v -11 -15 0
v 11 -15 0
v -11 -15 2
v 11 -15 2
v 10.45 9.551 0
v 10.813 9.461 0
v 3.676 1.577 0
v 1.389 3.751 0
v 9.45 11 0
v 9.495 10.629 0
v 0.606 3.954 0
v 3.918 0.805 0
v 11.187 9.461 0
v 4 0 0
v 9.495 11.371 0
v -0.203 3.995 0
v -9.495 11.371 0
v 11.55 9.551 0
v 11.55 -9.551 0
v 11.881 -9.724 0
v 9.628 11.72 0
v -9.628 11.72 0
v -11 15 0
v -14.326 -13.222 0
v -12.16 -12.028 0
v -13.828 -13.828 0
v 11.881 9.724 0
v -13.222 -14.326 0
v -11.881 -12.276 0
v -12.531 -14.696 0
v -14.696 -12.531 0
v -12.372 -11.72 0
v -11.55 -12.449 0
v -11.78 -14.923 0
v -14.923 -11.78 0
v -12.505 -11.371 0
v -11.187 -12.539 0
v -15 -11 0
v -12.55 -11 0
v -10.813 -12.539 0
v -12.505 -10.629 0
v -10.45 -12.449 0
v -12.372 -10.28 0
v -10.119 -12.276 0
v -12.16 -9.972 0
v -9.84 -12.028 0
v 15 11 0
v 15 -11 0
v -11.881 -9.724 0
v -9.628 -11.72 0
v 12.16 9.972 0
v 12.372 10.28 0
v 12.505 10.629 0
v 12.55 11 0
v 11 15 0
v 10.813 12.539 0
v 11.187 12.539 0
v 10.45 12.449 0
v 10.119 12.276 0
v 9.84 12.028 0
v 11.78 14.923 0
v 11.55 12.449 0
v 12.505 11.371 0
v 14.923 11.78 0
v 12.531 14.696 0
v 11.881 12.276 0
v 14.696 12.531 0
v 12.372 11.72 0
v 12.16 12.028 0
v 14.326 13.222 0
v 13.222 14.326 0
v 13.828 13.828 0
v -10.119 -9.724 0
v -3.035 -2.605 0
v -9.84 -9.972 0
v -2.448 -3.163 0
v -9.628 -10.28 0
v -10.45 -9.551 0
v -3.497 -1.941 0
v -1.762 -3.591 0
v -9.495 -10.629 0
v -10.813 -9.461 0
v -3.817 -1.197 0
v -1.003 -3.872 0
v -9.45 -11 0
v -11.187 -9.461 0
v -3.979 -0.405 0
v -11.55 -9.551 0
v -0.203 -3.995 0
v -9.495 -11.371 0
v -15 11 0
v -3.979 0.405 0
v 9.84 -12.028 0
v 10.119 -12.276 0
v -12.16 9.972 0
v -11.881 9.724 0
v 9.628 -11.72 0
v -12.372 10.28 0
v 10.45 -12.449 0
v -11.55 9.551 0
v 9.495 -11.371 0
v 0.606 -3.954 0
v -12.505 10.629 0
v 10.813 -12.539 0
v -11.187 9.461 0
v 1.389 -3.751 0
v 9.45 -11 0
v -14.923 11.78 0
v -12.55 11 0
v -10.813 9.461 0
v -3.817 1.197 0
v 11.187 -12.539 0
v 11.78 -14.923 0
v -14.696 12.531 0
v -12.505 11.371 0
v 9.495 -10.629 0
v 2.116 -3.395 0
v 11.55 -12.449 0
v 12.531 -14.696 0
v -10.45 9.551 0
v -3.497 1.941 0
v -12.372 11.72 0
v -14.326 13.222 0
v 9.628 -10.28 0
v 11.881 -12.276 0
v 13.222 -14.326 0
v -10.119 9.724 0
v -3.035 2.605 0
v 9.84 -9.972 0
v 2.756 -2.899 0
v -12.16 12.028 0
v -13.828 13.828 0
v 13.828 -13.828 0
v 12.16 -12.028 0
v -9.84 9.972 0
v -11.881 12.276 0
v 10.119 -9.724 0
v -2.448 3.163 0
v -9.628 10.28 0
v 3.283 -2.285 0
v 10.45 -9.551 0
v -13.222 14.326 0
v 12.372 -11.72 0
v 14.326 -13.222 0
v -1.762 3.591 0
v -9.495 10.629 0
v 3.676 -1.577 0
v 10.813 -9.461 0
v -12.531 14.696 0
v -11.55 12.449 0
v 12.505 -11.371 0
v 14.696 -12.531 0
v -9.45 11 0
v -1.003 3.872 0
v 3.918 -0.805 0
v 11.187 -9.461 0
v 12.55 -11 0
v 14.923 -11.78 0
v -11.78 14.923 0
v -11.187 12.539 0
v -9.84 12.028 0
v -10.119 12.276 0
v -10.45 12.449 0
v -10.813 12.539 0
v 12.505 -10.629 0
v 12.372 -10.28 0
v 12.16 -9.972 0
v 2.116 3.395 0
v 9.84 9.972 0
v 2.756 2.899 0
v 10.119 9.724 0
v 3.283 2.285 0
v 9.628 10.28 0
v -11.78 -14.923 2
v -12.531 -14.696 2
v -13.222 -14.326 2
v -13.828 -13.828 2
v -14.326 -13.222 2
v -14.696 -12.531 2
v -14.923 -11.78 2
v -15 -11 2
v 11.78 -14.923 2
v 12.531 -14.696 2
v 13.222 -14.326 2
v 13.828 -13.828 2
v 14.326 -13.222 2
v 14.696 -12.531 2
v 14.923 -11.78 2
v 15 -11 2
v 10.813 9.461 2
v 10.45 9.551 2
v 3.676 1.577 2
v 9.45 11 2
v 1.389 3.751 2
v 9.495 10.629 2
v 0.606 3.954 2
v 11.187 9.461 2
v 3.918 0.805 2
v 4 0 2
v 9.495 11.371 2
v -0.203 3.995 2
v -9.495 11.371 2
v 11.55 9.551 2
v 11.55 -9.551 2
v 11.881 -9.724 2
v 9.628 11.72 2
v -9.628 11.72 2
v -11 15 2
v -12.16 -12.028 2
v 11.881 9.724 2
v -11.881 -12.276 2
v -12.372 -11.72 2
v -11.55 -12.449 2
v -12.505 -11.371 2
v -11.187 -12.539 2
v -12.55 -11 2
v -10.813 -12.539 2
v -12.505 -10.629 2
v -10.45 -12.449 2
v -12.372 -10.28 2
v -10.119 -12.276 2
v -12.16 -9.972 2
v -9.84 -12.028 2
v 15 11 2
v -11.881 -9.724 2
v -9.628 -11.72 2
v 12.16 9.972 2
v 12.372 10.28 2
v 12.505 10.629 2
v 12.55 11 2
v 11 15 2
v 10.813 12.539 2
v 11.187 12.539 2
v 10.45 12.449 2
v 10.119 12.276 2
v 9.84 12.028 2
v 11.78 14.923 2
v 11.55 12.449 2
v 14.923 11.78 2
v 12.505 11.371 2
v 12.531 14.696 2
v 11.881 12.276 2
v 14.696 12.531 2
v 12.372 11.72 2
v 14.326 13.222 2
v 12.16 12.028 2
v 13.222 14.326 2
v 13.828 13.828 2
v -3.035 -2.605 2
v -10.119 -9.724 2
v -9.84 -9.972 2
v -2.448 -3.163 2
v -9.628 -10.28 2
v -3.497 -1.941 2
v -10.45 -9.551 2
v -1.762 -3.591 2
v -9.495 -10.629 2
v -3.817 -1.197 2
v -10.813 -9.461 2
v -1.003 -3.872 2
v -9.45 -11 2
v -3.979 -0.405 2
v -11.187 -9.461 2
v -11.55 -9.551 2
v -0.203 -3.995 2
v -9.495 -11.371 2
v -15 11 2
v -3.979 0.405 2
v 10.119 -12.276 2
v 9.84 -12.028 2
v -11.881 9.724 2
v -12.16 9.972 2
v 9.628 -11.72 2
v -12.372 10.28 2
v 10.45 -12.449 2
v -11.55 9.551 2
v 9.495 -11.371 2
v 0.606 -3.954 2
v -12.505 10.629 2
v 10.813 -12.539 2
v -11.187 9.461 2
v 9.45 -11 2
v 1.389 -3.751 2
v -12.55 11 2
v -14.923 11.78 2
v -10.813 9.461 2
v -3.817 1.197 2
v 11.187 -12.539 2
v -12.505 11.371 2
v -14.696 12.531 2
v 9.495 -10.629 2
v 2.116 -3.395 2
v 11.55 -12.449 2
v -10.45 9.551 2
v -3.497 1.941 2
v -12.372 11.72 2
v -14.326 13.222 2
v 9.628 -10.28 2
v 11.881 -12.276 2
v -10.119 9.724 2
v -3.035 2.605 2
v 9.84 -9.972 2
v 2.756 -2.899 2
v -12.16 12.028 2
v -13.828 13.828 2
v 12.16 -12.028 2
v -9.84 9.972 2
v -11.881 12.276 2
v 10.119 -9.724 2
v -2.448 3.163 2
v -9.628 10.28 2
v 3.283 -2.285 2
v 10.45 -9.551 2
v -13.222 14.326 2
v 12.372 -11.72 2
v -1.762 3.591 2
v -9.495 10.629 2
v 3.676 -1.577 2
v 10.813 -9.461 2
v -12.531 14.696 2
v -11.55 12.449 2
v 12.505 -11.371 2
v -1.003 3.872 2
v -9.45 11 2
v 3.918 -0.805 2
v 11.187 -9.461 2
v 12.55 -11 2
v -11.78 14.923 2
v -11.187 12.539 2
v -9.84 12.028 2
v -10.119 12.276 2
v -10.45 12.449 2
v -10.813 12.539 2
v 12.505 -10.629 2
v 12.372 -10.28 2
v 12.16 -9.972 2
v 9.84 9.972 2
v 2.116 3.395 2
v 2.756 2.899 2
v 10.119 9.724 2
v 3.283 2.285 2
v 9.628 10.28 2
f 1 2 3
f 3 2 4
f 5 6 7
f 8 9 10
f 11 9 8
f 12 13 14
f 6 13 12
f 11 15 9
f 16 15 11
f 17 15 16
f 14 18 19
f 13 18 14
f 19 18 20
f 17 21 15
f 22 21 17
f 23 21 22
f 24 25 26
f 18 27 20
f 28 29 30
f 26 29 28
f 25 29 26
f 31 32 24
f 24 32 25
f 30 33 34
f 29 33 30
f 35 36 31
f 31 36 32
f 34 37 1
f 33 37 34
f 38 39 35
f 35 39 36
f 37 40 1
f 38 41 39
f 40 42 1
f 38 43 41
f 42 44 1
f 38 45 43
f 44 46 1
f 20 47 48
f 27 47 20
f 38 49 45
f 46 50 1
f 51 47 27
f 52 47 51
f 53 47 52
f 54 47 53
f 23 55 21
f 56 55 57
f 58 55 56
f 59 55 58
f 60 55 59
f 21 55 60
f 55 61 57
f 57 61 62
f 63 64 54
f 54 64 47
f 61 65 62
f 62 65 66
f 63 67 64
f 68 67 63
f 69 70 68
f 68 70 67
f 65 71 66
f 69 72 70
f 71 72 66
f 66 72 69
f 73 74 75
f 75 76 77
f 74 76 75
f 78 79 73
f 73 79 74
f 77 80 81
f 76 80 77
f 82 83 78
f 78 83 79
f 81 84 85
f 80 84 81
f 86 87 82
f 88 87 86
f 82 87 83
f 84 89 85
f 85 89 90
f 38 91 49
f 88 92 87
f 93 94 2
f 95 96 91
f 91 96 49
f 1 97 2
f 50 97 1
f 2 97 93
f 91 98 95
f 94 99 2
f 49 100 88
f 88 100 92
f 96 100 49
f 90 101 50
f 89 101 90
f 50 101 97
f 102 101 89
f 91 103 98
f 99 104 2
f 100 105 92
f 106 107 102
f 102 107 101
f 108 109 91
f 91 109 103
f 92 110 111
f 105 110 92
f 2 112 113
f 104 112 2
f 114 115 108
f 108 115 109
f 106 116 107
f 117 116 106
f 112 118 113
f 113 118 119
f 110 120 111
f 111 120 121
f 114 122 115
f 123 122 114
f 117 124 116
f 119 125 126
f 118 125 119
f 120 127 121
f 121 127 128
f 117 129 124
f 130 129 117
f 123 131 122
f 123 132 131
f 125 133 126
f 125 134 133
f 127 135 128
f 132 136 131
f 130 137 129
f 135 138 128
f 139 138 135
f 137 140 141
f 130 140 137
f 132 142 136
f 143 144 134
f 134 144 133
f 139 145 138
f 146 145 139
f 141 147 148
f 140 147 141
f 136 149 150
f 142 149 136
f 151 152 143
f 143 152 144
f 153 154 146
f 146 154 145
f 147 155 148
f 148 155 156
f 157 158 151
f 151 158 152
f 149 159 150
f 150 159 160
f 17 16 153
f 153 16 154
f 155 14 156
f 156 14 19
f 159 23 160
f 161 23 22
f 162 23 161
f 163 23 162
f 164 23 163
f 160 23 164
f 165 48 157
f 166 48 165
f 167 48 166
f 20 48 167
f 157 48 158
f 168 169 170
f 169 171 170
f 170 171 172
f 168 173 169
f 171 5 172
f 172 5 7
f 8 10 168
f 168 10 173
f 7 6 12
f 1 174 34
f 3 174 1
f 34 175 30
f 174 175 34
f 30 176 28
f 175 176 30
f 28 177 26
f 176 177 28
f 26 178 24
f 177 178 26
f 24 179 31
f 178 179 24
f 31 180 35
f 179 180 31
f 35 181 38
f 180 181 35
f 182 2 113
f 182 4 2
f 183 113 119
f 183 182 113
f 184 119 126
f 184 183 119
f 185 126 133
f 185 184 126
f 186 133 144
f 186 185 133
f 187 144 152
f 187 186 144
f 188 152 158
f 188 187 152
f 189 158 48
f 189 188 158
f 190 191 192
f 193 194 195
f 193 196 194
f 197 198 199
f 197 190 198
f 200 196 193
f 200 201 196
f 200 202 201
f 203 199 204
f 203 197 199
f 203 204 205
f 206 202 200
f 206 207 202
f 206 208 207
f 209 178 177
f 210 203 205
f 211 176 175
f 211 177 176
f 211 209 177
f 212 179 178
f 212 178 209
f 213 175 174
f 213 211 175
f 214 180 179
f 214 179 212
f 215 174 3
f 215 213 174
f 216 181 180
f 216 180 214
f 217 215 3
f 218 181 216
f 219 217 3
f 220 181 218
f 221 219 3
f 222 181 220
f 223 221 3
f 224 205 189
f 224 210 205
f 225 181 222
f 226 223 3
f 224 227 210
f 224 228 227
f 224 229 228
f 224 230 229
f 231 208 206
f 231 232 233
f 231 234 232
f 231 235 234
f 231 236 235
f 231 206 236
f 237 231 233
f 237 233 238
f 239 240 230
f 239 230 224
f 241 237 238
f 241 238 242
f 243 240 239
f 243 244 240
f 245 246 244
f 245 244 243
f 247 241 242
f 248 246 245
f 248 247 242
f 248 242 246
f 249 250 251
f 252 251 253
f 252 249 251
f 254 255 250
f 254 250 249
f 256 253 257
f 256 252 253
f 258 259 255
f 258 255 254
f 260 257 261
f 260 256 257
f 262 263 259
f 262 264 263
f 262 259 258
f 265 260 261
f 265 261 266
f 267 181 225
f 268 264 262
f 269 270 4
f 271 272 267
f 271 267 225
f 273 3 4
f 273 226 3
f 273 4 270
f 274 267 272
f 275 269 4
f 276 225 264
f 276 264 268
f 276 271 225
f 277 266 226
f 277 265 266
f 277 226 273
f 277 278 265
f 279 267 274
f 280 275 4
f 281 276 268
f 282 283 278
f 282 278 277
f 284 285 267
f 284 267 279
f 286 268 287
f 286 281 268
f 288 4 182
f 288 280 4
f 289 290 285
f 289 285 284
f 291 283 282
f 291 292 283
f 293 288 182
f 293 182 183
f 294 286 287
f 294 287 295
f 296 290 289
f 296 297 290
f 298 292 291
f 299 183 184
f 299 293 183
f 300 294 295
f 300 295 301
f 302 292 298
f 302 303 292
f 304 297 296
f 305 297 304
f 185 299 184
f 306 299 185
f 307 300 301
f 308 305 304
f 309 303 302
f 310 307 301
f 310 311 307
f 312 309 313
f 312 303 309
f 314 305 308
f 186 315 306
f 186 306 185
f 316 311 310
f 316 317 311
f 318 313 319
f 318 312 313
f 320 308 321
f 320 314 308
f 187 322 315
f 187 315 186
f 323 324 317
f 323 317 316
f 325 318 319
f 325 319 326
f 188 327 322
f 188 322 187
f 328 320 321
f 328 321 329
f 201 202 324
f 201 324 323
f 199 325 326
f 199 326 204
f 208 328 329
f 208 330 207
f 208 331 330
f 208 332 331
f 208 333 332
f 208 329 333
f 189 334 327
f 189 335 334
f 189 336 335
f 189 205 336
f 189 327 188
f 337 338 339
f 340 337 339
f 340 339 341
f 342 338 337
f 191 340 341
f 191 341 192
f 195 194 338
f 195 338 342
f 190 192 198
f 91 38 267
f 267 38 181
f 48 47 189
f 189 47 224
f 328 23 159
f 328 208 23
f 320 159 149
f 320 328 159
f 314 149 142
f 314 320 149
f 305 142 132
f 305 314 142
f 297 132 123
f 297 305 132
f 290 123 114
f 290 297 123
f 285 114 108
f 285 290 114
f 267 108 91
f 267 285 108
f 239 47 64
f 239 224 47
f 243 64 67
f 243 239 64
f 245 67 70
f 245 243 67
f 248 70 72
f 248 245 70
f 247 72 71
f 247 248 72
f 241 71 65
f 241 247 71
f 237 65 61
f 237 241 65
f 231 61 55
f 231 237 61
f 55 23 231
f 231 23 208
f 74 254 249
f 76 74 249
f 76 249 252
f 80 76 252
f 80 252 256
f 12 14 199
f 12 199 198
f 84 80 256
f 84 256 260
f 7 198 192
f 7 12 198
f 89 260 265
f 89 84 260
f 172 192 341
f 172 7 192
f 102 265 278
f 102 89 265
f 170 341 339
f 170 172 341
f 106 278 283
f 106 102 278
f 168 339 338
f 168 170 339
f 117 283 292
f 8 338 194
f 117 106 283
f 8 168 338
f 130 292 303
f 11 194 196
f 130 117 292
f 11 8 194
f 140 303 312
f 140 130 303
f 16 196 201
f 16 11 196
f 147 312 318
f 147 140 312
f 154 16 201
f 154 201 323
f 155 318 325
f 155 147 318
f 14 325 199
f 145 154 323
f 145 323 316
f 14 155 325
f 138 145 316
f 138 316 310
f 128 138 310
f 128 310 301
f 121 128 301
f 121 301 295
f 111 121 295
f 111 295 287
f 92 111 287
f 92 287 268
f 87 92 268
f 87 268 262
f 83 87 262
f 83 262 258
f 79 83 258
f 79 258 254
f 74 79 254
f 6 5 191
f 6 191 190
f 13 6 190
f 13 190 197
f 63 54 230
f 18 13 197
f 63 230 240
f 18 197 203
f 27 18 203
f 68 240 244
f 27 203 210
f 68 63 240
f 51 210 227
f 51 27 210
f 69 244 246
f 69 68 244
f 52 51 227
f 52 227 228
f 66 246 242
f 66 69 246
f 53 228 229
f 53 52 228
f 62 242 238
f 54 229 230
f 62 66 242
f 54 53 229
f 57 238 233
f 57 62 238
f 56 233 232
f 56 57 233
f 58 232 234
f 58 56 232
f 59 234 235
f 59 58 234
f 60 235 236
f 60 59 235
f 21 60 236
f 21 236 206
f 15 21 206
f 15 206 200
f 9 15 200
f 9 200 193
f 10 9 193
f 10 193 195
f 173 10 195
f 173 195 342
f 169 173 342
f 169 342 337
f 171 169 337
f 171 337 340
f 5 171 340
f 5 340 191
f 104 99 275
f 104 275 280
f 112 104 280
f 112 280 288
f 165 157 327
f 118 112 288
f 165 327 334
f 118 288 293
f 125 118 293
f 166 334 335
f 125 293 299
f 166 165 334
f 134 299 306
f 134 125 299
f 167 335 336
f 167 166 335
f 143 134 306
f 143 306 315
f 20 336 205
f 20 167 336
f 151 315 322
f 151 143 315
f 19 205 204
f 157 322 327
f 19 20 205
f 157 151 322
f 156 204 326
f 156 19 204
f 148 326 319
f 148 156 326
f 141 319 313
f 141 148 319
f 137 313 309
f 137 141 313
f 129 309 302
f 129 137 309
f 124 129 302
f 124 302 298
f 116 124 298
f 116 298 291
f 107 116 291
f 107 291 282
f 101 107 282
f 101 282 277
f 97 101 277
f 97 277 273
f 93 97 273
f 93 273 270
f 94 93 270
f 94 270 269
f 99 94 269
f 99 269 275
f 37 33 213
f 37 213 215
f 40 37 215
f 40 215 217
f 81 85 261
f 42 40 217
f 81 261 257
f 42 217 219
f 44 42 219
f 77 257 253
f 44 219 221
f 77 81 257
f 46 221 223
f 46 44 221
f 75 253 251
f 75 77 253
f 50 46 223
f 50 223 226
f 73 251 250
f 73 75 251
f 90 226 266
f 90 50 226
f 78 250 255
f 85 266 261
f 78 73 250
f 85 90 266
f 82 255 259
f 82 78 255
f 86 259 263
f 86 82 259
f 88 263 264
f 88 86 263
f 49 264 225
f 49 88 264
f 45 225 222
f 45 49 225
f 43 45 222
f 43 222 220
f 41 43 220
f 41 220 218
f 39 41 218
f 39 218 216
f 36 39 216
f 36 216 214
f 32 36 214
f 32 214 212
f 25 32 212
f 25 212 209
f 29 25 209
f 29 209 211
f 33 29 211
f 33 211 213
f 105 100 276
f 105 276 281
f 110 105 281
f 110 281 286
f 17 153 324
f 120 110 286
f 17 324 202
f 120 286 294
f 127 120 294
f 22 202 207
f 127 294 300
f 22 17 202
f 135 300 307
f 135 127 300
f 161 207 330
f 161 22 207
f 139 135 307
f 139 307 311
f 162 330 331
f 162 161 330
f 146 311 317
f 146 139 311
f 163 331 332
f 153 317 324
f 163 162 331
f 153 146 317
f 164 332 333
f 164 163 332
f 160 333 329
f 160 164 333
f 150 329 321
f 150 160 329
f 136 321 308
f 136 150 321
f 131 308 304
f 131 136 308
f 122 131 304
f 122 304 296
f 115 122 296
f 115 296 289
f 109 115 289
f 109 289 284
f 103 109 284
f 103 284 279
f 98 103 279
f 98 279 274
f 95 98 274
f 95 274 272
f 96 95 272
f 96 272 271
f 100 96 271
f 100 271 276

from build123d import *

# Parameters (mm, degrees)
SKETCH_W      = 30
SKETCH_H      = 30
SKETCH_R      = 4
SKETCH_R_2    = 1.55
EXTRUDE_DEPTH = 2
FILLET_R      = 4


with BuildPart() as part:
    # Sketch → Extrude (new body)
    with BuildSketch(Plane.XY):
        Rectangle(SKETCH_W, SKETCH_H)
        Circle(SKETCH_R, mode=Mode.SUBTRACT)
        with Locations((-11, 11)):
            Circle(SKETCH_R_2, mode=Mode.SUBTRACT)
        with Locations((-11, -11)):
            Circle(SKETCH_R_2, mode=Mode.SUBTRACT)
        with Locations((11, -11)):
            Circle(SKETCH_R_2, mode=Mode.SUBTRACT)
        with Locations((11, 11)):
            Circle(SKETCH_R_2, mode=Mode.SUBTRACT)
    extrude(amount=EXTRUDE_DEPTH)

    # Fillet
    fillet_edges = [part.edges().sort_by_distance(p)[0] for p in [
        (-15, -15, 1),
        (15, -15, 1),
        (15, 15, 1),
        (-15, 15, 1),
    ]]
    fillet(fillet_edges, radius=FILLET_R)


solid = part.part
